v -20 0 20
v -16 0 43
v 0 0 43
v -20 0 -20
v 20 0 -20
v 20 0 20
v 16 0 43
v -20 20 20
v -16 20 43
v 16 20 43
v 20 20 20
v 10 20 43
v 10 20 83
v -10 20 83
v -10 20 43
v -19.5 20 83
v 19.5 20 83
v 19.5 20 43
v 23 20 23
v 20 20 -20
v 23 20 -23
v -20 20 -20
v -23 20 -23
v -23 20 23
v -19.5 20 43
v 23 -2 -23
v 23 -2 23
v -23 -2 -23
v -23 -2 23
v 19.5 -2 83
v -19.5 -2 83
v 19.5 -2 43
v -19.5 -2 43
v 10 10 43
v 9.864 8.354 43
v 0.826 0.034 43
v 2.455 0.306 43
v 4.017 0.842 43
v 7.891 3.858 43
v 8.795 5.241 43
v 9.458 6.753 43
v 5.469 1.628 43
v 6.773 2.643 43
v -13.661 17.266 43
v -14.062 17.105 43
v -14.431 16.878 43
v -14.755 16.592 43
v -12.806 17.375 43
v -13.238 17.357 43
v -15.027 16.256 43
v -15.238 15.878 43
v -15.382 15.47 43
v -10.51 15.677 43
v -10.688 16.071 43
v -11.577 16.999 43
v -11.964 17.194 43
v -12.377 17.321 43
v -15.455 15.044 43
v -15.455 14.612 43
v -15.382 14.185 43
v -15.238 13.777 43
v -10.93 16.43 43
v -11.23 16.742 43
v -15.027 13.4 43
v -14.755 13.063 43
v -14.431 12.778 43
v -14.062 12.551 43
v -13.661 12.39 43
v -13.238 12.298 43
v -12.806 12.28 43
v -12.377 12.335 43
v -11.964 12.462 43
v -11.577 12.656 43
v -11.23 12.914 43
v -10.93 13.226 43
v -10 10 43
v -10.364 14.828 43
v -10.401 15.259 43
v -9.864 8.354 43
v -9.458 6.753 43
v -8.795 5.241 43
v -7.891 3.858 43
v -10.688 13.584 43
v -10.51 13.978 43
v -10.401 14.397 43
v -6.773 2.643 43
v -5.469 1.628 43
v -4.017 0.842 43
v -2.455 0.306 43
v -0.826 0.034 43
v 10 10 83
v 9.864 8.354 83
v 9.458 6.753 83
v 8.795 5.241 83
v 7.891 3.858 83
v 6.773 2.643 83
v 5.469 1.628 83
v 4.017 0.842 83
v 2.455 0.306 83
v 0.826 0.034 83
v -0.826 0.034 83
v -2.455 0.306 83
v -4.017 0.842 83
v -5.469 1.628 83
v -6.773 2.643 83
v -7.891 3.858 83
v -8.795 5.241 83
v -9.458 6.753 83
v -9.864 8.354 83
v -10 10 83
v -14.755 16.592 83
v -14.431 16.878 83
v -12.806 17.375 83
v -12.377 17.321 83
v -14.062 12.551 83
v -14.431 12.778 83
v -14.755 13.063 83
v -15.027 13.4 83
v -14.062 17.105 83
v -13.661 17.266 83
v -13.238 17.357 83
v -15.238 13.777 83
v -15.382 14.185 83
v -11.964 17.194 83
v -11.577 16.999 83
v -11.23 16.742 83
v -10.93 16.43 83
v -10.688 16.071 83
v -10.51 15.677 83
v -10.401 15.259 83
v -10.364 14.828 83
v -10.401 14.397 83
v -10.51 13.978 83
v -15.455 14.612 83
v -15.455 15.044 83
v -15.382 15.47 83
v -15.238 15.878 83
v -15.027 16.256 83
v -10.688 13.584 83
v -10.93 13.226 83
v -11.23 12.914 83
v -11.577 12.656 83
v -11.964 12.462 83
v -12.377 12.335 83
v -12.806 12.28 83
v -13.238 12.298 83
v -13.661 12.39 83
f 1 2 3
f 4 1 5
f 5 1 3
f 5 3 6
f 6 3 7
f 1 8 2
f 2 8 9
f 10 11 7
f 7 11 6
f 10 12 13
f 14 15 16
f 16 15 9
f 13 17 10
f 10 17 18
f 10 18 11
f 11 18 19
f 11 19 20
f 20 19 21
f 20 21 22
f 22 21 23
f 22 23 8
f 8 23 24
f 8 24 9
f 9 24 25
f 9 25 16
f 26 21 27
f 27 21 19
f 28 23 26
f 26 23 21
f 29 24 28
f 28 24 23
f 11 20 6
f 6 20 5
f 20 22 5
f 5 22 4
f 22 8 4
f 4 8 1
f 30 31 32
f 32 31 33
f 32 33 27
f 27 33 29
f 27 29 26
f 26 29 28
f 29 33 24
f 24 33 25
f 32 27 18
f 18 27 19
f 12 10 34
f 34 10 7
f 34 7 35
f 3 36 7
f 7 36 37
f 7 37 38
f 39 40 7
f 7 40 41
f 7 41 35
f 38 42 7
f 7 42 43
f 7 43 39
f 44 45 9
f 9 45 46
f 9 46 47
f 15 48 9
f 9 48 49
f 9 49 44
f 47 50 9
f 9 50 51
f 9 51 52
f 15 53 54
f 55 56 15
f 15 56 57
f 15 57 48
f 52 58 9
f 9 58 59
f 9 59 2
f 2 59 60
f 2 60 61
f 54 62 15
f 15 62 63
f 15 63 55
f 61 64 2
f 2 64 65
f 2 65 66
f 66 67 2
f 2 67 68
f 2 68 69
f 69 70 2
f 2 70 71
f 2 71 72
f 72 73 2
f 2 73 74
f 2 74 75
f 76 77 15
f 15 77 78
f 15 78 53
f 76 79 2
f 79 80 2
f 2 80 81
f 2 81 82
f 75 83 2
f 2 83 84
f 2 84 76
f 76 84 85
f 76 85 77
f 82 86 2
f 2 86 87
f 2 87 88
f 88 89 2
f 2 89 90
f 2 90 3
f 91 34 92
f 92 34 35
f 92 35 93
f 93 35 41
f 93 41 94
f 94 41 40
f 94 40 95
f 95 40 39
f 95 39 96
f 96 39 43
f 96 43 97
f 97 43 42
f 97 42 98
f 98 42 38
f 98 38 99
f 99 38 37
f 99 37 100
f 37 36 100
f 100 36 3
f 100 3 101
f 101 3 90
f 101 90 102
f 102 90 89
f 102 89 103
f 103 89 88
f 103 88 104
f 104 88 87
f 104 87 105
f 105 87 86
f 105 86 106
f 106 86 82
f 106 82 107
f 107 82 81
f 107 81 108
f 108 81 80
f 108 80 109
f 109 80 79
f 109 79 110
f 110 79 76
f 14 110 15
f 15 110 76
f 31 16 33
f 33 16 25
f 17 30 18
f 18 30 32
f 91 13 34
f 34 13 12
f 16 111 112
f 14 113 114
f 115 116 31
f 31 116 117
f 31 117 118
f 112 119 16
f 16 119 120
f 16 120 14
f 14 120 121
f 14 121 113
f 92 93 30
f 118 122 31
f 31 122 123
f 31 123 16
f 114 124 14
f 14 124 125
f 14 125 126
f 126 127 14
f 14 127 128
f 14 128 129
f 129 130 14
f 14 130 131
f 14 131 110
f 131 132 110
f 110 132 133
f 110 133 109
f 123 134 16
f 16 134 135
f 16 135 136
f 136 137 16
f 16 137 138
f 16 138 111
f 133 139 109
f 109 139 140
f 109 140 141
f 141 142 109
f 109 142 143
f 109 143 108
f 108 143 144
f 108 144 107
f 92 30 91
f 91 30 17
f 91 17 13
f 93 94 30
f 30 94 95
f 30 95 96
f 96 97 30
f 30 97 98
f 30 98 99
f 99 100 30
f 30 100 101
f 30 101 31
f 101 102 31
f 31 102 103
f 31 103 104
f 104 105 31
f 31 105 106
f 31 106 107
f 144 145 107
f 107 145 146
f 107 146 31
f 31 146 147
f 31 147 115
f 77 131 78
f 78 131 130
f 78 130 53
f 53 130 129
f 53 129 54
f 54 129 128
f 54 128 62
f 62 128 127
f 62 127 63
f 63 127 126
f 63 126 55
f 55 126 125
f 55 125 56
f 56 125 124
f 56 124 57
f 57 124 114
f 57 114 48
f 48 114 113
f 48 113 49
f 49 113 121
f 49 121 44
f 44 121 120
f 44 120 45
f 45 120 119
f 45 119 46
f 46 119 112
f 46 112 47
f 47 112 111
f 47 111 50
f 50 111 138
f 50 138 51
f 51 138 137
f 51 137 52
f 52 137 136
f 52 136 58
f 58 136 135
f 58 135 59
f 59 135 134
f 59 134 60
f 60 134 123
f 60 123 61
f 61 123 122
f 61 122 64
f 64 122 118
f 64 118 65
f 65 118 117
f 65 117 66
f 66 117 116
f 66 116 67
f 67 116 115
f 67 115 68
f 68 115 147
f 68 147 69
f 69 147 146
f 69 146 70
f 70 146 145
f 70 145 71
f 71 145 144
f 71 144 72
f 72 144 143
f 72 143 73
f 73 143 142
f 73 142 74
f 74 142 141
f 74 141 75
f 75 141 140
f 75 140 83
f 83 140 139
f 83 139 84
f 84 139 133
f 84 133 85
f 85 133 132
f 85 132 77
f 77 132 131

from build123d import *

# Parameters (mm, degrees)
SKETCH1_W           = 46
SKETCH1_H           = 46
SKETCH1_W_2         = 40
SKETCH1_H_2         = 40
BOSS_EXTRUDE1_DEPTH = 20
SKETCH2_W           = 46
SKETCH2_H           = 46
BOSS_EXTRUDE2_DEPTH = 2
BOSS_EXTRUDE3_DEPTH = 22
CUT_EXTRUDE1_DEPTH  = 20
BOSS_EXTRUDE5_DEPTH = 2
BOSS_EXTRUDE6_DEPTH = 40
SKETCH8_R           = 2.55
CUT_EXTRUDE2_DEPTH  = 60
SKETCH9_W           = 1
SKETCH9_H           = 20
BOSS_EXTRUDE7_DEPTH = 40


with BuildPart() as part:
    # Sketch1 → Boss-Extrude1 (new body)
    with BuildSketch(Plane(origin=(0, 0, 0), x_dir=(1, 0, 0), z_dir=(0, 1, 0))):
        Rectangle(SKETCH1_W, SKETCH1_H)
        Rectangle(SKETCH1_W_2, SKETCH1_H_2, mode=Mode.SUBTRACT)
    extrude(amount=BOSS_EXTRUDE1_DEPTH)

    # Sketch2 → Boss-Extrude2 (add)
    with BuildSketch(Plane.XZ):
        Rectangle(SKETCH2_W, SKETCH2_H)
    extrude(amount=BOSS_EXTRUDE2_DEPTH)

    # Sketch3 → Boss-Extrude3 (add)
    with BuildSketch(Plane(origin=(0, 20, 0), x_dir=(1, 0, 0), z_dir=(0, 1, 0))):
        Polygon((-16, -43), (-19.47826087, -23), (-23, -23), (-19.5, -43), align=None)
        Polygon((23, -23), (19.47826087, -23), (16, -43), (19.5, -43), align=None)
    extrude(amount=-BOSS_EXTRUDE3_DEPTH)

    # Sketch3<3> → Cut-Extrude1 (cut)
    with BuildSketch(Plane(origin=(0, 20, 0), x_dir=(1, 0, 0), z_dir=(0, 1, 0))):
        Polygon((20, -20), (-20, -20), (-19.47826087, -23), (19.47826087, -23), align=None)
    extrude(amount=-CUT_EXTRUDE1_DEPTH, mode=Mode.SUBTRACT)

    # Sketch5 → Boss-Extrude5 (add)
    with BuildSketch(Plane.XZ.offset(2)):
        Polygon((-16, 43), (-19.47826087, 23), (19.47826087, 23), (16, 43), align=None)
    extrude(amount=-BOSS_EXTRUDE5_DEPTH)

    # Sketch6 → Boss-Extrude6 (add)
    with BuildSketch(Plane.XY.offset(43)):
        with BuildLine():
            Line((-10, 20), (-15, 20))
            Line((-15, 20), (-15, 0))
            Line((-15, 0), (-16, 0))
            Line((-16, 0), (-16, 20))
            Line((-16, 20), (-19.5, 20))
            Line((-19.5, 20), (-19.5, -2))
            Line((-19.5, -2), (19.5, -2))
            Line((19.5, -2), (19.5, 20))
            Line((19.5, 20), (16, 20))
            Line((16, 20), (16, 0))
            Line((16, 0), (15, 0))
            Line((15, 0), (15, 20))
            Line((15, 20), (10, 20))
            Line((10, 20), (10, 10))
            ThreePointArc((10, 10), (0, 0), (-10, 10))
            Line((-10, 10), (-10, 20))
        make_face()
    extrude(amount=BOSS_EXTRUDE6_DEPTH)

    # Sketch8 → Cut-Extrude2 (cut)
    with BuildSketch(Plane.XY.offset(83)):
        with Locations((-12.914377538, 14.827782421)):
            Circle(SKETCH8_R)
    extrude(amount=-CUT_EXTRUDE2_DEPTH, mode=Mode.SUBTRACT)

    # Sketch9 → Boss-Extrude7 (add)
    with BuildSketch(Plane.XY.offset(83)):
        with Locations((15.5, 10)):
            Rectangle(SKETCH9_W, SKETCH9_H)
        with BuildLine():
            Line((-15, 16.294983479), (-15, 20))
            Line((-15, 20), (-16, 20))
            Line((-16, 20), (-16, 0))
            Line((-16, 0), (-15, 0))
            Line((-15, 0), (-15, 13.360581363))
            ThreePointArc((-15, 13.360581363), (-15.464377538, 14.827782421), (-15, 16.294983479))
        make_face()
    extrude(amount=-BOSS_EXTRUDE7_DEPTH)


solid = part.part
